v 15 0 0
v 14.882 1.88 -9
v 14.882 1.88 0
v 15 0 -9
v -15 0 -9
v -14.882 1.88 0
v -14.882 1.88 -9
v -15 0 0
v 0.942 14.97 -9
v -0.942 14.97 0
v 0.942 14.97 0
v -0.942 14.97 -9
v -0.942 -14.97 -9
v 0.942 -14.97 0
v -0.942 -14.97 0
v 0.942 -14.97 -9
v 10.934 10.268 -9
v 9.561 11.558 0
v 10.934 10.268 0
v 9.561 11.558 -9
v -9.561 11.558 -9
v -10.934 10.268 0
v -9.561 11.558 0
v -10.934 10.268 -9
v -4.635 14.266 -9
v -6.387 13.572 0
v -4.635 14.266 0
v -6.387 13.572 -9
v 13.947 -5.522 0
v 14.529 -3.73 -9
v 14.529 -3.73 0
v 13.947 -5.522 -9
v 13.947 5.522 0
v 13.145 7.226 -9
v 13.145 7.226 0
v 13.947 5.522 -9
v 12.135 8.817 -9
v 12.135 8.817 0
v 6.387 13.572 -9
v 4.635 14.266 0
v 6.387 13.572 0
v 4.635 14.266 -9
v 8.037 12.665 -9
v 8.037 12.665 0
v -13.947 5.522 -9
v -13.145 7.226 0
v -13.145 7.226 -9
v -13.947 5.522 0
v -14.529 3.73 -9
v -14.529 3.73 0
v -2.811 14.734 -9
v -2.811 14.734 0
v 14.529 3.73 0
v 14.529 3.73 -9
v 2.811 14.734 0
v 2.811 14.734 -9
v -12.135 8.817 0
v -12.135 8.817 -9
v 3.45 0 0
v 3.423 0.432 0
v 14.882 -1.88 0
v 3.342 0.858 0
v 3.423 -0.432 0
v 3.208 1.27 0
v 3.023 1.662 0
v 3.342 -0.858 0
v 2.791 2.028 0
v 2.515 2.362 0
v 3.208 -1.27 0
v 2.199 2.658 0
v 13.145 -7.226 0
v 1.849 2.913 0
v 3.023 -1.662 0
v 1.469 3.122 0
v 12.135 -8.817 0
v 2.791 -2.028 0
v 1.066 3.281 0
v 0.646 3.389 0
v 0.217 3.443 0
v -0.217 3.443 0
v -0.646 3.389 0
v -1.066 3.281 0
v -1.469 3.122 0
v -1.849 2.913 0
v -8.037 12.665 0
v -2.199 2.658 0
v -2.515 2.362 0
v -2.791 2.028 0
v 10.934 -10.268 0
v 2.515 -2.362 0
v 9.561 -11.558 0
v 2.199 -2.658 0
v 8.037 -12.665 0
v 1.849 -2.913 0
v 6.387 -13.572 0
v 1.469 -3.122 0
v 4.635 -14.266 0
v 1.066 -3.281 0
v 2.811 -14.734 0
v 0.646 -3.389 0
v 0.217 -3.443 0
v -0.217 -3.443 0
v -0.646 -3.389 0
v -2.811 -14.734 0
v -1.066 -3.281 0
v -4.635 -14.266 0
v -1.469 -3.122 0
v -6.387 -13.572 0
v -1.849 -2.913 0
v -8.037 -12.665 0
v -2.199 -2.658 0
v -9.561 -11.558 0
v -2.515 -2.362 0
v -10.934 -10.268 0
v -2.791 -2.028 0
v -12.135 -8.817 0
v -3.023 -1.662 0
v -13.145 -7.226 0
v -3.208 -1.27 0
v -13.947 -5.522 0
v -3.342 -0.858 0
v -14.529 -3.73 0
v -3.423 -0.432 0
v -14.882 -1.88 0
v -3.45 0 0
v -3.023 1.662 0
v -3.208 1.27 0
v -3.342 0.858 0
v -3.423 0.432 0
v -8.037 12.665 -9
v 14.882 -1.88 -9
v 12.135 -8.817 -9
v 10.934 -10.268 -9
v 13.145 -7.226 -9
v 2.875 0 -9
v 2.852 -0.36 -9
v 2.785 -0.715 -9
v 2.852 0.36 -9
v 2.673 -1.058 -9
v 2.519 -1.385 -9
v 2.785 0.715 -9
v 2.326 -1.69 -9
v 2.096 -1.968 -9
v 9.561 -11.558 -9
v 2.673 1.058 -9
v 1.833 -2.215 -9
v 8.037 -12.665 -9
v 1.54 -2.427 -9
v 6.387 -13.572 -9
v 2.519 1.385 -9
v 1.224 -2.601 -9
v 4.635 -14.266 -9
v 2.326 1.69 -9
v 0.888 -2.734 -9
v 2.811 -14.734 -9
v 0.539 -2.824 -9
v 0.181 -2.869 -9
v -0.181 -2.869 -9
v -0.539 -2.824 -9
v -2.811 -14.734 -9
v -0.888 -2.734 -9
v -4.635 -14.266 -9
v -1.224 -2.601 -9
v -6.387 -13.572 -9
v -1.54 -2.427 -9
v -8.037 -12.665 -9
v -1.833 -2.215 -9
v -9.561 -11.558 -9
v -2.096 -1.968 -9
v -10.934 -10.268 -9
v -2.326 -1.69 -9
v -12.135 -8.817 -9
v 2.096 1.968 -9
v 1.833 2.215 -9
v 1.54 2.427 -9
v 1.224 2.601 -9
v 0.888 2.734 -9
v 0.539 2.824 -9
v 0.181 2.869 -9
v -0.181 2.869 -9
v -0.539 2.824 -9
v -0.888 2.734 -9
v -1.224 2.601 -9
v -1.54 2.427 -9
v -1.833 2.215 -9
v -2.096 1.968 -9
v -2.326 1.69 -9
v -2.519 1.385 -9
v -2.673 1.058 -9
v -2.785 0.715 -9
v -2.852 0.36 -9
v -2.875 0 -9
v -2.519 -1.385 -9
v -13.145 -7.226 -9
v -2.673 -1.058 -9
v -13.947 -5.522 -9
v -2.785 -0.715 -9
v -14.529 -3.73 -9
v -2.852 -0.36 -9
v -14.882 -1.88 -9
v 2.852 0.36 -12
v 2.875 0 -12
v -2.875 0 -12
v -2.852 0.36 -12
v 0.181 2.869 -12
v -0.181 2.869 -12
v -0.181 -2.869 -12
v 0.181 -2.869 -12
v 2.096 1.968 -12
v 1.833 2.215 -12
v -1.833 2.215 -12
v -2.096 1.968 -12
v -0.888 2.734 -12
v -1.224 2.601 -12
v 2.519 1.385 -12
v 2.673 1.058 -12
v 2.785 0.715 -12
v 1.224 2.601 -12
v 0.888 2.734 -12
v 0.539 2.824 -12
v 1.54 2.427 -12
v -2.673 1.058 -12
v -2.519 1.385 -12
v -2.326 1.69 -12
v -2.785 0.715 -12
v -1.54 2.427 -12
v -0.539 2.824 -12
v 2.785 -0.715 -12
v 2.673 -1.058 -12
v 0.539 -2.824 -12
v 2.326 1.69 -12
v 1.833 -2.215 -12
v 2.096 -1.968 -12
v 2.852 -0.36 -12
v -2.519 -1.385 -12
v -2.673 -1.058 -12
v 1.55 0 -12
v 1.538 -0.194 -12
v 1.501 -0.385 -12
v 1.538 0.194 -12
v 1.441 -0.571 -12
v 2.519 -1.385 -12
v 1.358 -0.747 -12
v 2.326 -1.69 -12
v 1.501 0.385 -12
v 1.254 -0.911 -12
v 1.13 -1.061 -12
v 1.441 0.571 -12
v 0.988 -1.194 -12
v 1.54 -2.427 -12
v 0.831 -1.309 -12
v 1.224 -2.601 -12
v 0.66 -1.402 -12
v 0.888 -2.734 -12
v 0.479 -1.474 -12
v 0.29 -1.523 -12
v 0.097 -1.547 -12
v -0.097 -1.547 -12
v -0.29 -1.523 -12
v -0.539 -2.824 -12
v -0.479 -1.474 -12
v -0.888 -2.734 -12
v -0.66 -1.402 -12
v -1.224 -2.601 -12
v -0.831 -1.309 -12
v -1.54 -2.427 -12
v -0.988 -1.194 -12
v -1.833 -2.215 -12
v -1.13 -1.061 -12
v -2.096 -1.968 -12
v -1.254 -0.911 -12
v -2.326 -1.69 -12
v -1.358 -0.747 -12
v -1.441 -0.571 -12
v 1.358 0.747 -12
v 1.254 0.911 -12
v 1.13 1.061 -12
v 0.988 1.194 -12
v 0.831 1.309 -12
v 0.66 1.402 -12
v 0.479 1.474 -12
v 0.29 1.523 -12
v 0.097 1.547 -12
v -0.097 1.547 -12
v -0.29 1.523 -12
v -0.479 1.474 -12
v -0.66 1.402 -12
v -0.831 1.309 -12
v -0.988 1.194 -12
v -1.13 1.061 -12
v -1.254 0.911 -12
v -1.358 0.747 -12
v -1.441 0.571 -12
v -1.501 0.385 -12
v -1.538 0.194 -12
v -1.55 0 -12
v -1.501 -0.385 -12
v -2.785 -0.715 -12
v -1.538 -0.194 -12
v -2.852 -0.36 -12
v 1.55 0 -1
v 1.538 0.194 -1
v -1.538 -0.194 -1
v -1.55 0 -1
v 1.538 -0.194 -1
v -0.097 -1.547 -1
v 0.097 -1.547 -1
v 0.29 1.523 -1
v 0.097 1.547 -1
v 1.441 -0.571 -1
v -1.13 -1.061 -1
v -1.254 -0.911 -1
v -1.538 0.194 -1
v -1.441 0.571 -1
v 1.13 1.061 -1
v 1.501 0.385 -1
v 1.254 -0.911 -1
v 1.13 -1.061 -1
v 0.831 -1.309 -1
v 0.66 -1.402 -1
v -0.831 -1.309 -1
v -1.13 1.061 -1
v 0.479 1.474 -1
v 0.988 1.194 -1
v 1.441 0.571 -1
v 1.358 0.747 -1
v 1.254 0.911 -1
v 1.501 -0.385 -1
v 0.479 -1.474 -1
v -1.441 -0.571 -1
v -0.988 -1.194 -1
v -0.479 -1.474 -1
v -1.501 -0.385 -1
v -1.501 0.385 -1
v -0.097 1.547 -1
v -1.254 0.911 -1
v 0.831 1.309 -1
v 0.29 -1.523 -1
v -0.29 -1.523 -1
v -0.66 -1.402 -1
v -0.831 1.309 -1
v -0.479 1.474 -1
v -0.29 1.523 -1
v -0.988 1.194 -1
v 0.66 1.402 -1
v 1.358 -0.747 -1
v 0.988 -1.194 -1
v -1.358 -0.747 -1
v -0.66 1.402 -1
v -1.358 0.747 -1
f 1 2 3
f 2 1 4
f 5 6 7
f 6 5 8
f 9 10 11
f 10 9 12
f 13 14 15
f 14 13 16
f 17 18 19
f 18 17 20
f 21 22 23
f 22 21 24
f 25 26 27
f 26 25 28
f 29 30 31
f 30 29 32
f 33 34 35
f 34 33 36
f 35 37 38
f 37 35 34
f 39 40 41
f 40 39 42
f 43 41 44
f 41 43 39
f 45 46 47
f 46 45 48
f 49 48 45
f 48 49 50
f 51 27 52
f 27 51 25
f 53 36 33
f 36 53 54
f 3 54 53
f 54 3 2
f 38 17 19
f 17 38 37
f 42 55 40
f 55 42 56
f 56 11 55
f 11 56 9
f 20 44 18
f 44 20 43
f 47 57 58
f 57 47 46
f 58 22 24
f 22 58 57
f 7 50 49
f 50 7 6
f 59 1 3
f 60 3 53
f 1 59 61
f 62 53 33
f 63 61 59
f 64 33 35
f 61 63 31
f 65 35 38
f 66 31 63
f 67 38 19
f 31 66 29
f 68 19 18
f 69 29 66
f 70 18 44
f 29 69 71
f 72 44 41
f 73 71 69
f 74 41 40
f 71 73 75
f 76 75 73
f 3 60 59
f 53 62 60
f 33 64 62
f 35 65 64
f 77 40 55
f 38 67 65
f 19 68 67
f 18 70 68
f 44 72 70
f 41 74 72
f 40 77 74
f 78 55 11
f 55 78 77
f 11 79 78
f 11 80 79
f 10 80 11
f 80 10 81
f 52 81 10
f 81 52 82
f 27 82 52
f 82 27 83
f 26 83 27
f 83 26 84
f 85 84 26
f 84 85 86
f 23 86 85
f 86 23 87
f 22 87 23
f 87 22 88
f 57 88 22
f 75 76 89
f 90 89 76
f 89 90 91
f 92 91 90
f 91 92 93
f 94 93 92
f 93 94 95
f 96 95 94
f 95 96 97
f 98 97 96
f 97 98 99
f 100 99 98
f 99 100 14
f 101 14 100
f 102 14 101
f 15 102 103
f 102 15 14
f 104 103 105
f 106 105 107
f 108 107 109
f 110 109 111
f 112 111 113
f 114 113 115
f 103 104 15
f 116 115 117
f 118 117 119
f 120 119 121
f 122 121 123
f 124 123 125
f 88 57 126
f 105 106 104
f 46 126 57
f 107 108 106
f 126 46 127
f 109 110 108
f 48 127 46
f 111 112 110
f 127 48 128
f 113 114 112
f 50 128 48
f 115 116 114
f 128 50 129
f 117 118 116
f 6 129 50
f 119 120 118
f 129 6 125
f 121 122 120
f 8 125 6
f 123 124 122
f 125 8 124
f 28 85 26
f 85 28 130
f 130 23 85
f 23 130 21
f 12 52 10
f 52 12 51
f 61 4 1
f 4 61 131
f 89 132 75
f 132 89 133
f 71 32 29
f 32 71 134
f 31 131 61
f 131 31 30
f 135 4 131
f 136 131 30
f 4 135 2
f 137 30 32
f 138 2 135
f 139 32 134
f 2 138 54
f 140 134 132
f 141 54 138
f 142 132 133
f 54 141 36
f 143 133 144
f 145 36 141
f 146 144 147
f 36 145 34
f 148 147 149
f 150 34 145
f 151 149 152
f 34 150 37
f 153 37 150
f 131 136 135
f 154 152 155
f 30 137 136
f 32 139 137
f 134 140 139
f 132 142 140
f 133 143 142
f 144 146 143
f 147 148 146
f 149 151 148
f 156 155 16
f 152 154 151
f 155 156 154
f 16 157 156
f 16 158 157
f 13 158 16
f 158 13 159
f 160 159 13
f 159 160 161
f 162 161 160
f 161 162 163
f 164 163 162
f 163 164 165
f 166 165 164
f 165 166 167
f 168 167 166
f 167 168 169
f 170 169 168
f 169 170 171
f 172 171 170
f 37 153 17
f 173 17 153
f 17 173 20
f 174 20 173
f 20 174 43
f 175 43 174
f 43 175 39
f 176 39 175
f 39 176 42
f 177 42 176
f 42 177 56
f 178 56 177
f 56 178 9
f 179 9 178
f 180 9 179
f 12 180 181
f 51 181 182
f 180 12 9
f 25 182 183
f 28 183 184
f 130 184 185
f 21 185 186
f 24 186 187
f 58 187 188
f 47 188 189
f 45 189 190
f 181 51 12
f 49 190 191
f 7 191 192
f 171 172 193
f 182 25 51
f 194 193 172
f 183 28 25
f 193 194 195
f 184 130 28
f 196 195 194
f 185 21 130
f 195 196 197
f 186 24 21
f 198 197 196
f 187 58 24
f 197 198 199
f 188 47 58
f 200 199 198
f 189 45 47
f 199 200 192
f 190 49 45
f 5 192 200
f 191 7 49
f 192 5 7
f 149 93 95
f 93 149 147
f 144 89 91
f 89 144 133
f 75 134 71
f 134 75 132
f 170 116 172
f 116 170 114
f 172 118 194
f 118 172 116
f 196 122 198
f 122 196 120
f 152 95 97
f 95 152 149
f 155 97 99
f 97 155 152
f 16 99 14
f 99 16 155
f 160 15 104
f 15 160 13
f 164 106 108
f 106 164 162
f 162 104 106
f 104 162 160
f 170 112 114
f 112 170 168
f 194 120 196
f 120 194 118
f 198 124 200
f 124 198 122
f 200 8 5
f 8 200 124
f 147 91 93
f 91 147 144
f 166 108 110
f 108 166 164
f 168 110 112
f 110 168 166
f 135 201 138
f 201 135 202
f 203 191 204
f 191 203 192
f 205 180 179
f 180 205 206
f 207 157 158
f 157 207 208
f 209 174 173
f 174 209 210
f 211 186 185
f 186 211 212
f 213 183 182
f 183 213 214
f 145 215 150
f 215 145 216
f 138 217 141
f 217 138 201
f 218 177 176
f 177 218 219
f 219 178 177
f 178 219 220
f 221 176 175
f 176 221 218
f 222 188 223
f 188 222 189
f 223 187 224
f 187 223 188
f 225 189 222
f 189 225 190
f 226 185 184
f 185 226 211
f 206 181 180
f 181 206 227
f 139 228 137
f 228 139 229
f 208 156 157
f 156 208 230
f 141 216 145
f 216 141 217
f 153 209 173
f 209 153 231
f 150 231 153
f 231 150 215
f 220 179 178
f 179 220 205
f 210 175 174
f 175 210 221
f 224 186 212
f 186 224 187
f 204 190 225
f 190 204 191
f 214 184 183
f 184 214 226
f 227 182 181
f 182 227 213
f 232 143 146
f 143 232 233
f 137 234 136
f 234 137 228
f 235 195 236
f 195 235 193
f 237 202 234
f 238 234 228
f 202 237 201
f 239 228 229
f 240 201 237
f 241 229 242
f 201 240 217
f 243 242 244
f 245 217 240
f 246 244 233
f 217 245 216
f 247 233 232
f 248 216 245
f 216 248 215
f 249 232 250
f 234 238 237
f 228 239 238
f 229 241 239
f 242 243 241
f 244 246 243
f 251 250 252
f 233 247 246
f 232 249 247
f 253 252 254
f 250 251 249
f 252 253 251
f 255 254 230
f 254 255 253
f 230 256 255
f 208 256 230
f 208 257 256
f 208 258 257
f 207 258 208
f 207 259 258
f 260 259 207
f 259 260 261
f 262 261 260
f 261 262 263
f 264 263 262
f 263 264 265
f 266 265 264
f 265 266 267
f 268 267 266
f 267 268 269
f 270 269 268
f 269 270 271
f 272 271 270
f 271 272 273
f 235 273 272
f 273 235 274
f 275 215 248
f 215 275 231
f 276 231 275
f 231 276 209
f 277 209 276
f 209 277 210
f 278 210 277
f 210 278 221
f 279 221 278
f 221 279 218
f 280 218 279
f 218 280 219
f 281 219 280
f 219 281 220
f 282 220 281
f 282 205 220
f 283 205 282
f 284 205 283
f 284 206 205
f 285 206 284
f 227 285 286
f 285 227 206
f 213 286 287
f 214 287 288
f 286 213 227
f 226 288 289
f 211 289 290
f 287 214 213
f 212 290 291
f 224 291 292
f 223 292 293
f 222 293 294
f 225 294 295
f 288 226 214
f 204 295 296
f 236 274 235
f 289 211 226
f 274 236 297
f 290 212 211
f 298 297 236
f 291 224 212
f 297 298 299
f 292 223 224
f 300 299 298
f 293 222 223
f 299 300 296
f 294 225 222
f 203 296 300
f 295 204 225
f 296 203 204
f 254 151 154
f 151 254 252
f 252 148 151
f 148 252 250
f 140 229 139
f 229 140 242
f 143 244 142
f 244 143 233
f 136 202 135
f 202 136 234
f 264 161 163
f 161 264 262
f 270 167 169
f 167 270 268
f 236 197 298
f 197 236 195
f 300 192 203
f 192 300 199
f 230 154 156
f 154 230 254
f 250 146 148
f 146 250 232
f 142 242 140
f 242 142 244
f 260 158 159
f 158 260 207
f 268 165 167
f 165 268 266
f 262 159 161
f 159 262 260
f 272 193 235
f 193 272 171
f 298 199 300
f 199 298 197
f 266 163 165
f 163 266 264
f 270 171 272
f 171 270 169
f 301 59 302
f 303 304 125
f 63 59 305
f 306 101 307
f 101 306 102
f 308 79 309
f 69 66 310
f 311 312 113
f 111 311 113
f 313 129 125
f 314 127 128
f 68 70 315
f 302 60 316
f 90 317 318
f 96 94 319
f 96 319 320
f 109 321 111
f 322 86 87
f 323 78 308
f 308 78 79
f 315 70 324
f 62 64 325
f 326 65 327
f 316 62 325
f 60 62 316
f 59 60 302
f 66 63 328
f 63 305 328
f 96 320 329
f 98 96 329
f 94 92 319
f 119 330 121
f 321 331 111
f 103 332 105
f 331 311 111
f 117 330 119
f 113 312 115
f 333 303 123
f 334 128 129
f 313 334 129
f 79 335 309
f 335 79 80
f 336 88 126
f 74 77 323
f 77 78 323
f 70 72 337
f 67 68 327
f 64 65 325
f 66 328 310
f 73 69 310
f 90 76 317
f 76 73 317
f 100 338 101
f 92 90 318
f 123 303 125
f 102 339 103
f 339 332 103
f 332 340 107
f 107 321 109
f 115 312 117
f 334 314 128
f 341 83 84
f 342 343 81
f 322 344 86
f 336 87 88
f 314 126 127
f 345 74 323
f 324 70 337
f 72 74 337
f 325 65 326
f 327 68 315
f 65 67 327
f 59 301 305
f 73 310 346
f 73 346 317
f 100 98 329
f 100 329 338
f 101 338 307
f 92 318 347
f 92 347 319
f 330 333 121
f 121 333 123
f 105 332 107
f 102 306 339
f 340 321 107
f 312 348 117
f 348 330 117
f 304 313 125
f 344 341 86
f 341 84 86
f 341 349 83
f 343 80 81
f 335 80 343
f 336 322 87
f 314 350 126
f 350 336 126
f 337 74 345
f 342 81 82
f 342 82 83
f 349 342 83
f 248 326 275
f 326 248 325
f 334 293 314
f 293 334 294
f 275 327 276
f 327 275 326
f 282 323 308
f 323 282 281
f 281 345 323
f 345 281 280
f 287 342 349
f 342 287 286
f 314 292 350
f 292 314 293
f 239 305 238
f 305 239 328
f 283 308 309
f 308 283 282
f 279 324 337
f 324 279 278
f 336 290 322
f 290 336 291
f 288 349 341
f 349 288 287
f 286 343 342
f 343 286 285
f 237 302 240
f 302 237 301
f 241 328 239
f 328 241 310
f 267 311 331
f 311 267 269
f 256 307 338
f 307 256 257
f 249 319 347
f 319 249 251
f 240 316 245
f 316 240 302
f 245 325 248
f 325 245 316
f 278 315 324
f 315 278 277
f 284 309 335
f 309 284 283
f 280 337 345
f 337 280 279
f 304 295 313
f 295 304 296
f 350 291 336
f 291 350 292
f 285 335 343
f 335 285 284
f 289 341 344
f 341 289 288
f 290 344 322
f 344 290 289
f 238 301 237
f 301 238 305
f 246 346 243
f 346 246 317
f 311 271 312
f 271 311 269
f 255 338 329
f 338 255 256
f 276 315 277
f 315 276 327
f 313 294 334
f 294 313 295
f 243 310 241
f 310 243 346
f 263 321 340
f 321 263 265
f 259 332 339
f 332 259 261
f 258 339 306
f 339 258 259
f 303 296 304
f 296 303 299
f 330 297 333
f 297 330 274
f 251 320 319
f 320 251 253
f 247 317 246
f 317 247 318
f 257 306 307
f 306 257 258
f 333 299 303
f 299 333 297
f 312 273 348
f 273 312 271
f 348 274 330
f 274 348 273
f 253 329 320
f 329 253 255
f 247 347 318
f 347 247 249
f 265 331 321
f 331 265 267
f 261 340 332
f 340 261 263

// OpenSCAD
$fn = 50;


difference() {
	union() {
		translate(v = [0, 0, -9.0000000000]) {
			cylinder(h = 9, r = 15.0000000000);
		}
		translate(v = [0, 0, -12.0000000000]) {
			cylinder(h = 12, r = 2.8750000000);
		}
	}
	union() {
		translate(v = [0, 0, 0]) {
			rotate(a = [0, 0, 0]) {
				difference() {
					union() {
						translate(v = [0, 0, -12.0000000000]) {
							cylinder(h = 12, r = 1.2500000000);
						}
						translate(v = [0, 0, -1.0000000000]) {
							cylinder(h = 1.0000000000, r1 = 1.5500000000, r2 = 3.4500000000);
						}
						translate(v = [0, 0, -12.0000000000]) {
							cylinder(h = 12, r = 1.5500000000);
						}
						translate(v = [0, 0, -12.0000000000]) {
							cylinder(h = 12, r = 1.2500000000);
						}
					}
					union();
				}
			}
		}
	}
}
